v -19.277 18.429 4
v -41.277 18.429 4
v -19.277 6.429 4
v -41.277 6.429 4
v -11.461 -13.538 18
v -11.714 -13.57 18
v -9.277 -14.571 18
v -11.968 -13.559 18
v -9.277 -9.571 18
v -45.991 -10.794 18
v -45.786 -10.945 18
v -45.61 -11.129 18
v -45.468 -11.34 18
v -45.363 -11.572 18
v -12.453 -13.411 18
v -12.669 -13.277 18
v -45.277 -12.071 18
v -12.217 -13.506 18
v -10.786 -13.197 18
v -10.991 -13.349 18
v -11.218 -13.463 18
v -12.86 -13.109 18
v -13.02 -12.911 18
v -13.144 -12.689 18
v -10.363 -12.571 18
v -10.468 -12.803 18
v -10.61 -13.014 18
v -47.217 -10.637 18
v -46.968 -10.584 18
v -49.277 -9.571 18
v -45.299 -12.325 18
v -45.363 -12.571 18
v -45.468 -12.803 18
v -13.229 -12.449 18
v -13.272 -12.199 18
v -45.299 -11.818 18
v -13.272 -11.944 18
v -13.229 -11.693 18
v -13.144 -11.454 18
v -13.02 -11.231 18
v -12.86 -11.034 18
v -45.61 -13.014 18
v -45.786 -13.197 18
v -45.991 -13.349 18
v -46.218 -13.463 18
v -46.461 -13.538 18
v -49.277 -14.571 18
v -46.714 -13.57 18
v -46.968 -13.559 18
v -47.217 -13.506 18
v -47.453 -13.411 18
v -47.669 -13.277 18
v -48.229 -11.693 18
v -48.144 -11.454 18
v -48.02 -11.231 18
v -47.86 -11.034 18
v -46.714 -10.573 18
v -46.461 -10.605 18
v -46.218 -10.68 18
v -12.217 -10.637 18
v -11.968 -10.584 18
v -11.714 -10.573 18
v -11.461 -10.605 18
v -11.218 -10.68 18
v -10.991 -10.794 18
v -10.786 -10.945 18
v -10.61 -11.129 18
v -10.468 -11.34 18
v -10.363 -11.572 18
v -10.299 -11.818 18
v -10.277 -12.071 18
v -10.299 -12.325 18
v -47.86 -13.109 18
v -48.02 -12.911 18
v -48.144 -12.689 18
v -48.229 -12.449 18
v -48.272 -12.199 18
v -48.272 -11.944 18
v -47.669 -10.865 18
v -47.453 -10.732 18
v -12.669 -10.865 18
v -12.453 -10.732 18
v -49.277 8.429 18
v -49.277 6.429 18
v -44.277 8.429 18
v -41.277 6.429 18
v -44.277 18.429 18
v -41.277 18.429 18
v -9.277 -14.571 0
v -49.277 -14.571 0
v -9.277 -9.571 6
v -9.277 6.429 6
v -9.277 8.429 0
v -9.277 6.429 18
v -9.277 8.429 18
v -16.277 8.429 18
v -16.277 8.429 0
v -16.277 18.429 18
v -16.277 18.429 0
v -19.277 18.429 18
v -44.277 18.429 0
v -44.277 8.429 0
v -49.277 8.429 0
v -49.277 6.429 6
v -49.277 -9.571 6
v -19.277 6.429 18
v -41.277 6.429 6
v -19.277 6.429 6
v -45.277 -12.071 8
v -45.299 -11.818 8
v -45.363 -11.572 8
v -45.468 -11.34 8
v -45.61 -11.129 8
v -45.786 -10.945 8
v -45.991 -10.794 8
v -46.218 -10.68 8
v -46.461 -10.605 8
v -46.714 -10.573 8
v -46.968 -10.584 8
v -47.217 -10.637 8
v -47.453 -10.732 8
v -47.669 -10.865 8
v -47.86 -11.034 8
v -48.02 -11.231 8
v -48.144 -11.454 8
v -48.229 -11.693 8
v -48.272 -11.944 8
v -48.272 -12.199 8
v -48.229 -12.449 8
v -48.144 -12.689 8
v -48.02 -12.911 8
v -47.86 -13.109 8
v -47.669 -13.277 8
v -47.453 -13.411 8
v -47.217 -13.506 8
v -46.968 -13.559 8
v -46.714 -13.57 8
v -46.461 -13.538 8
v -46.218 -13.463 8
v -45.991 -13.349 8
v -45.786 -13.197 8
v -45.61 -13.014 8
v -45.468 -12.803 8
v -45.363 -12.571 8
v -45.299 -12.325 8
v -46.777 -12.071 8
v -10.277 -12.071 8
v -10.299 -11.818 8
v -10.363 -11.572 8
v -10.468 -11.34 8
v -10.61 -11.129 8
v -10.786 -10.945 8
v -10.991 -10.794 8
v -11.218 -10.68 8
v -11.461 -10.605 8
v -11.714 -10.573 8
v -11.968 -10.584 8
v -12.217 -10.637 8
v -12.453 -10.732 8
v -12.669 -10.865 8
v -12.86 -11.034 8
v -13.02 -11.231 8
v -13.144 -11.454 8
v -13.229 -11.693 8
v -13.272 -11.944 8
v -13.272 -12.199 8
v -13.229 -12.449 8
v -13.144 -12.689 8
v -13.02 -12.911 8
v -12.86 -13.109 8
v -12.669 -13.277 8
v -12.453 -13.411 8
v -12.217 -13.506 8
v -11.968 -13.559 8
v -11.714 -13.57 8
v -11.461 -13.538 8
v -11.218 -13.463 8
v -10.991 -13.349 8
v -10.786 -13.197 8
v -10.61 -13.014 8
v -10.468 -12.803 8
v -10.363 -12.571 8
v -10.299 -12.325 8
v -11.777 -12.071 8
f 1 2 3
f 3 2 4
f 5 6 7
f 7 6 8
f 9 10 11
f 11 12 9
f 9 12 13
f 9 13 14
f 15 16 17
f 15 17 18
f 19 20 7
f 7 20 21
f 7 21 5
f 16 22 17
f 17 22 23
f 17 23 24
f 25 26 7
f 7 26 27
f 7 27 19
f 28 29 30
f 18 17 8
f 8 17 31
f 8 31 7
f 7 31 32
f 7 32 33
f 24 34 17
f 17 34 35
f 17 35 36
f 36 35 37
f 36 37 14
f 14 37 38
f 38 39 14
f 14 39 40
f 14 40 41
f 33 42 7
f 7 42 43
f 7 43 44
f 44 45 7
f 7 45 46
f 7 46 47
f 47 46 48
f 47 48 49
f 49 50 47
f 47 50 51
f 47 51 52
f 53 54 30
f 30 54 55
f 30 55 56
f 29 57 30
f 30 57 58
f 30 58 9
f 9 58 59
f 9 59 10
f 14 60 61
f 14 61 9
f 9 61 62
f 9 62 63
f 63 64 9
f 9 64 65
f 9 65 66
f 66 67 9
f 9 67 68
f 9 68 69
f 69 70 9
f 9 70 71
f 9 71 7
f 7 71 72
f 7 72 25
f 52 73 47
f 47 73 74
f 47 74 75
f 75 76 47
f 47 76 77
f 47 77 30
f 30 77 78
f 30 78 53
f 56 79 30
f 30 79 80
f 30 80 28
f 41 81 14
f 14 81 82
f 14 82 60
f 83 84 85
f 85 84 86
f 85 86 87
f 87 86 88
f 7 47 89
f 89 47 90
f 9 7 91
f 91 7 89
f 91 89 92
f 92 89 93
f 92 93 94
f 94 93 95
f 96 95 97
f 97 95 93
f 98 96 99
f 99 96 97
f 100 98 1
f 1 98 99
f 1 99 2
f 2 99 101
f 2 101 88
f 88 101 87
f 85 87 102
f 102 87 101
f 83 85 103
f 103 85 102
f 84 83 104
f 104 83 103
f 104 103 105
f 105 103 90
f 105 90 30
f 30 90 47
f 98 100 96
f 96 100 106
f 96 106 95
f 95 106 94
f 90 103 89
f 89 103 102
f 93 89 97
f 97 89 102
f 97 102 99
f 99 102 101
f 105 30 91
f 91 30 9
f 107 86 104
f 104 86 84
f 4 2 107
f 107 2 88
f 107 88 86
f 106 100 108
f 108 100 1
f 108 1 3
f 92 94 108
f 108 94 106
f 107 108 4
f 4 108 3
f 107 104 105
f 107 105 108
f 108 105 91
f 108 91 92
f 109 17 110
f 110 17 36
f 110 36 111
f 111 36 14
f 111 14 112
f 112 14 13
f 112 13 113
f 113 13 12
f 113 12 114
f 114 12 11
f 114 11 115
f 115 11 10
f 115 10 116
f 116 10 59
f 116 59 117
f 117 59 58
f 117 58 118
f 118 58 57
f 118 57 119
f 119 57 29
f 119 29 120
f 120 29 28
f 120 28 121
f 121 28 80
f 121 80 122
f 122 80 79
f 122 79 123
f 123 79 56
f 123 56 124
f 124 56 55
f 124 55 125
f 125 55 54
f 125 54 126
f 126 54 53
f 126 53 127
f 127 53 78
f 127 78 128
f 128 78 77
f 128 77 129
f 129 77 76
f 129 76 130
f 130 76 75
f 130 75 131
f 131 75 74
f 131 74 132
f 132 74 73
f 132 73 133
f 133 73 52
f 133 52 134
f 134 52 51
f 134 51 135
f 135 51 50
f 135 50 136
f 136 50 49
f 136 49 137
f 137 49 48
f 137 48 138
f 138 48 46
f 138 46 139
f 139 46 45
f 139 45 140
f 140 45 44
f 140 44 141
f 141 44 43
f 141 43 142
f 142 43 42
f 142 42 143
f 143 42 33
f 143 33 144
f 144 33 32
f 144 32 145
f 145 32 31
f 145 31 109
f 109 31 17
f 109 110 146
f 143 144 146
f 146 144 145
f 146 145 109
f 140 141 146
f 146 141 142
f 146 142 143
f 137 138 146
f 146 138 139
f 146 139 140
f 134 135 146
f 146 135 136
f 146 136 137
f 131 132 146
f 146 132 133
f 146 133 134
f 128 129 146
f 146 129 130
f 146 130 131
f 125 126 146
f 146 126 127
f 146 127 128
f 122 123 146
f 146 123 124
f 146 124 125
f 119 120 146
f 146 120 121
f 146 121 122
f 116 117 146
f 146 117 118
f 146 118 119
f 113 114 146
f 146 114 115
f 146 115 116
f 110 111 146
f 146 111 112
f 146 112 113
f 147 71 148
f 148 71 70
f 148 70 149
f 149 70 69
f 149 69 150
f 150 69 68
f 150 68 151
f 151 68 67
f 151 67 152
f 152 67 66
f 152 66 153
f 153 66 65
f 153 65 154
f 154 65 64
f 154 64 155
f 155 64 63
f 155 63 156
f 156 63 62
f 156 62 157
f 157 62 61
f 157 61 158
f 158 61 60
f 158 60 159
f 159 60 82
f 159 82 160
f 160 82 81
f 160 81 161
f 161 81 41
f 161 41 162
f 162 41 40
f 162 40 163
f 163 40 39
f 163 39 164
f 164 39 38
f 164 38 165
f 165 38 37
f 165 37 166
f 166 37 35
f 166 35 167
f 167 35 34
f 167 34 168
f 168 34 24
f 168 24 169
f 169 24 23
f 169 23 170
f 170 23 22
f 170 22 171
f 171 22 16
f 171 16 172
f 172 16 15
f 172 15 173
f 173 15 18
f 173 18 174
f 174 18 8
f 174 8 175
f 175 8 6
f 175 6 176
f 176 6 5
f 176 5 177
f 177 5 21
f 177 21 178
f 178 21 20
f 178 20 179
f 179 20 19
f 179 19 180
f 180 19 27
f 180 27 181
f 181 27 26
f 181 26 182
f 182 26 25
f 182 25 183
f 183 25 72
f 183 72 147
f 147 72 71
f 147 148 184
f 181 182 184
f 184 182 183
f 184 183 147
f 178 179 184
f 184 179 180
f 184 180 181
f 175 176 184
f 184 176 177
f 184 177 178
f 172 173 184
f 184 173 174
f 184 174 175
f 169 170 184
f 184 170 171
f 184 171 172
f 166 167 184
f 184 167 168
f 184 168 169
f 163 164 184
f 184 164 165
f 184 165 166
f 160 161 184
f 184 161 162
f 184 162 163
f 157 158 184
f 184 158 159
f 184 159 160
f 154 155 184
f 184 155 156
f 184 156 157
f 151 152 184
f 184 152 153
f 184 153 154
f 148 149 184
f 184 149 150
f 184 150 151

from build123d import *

# Parameters (mm, degrees)
SALIENTE_EXTRUIR1_DEPTH = 18
CORTAR_EXTRUIR1_DEPTH   = 14
CROQUIS3_W              = 40
CROQUIS3_H              = 16
SALIENTE_EXTRUIR2_DEPTH = 2
CROQUIS10_R             = 1.5
CORTAR_EXTRUIR2_DEPTH   = 10


with BuildPart() as part:
    # Croquis1 → Saliente-Extruir1 (new body)
    with BuildSketch(Plane.XY):
        Polygon((-49.27736704, 8.428571429), (-49.27736704, -14.571428571), (-9.27736704, -14.571428571), (-9.27736704, 8.428571429), (-16.27736704, 8.428571429), (-16.27736704, 18.428571429), (-44.27736704, 18.428571429), (-44.27736704, 8.428571429), align=None)
    extrude(amount=SALIENTE_EXTRUIR1_DEPTH)

    # Croquis2 → Cortar-Extruir1 (cut)
    with BuildSketch(Plane.XY.offset(18)):
        Polygon((-9.27736704, 6.428571429), (-9.27736704, -9.571428571), (-49.27736704, -9.571428571), (-49.27736704, 6.428571429), (-41.27736704, 6.428571429), (-41.27736704, 18.428571429), (-19.27736704, 18.428571429), (-19.27736704, 6.428571429), align=None)
    extrude(amount=-CORTAR_EXTRUIR1_DEPTH, mode=Mode.SUBTRACT)

    # Croquis3 → Saliente-Extruir2 (add)
    with BuildSketch(Plane.XY.offset(4)):
        with Locations((-29.27736704, -1.571428571)):
            Rectangle(CROQUIS3_W, CROQUIS3_H)
    extrude(amount=SALIENTE_EXTRUIR2_DEPTH)

    # Croquis10 → Cortar-Extruir2 (cut)
    with BuildSketch(Plane.XY.offset(18)):
        with Locations((-46.77736704, -12.071428571)):
            Circle(CROQUIS10_R)
        with Locations((-11.77736704, -12.071428571)):
            Circle(CROQUIS10_R)
    extrude(amount=-CORTAR_EXTRUIR2_DEPTH, mode=Mode.SUBTRACT)


solid = part.part
